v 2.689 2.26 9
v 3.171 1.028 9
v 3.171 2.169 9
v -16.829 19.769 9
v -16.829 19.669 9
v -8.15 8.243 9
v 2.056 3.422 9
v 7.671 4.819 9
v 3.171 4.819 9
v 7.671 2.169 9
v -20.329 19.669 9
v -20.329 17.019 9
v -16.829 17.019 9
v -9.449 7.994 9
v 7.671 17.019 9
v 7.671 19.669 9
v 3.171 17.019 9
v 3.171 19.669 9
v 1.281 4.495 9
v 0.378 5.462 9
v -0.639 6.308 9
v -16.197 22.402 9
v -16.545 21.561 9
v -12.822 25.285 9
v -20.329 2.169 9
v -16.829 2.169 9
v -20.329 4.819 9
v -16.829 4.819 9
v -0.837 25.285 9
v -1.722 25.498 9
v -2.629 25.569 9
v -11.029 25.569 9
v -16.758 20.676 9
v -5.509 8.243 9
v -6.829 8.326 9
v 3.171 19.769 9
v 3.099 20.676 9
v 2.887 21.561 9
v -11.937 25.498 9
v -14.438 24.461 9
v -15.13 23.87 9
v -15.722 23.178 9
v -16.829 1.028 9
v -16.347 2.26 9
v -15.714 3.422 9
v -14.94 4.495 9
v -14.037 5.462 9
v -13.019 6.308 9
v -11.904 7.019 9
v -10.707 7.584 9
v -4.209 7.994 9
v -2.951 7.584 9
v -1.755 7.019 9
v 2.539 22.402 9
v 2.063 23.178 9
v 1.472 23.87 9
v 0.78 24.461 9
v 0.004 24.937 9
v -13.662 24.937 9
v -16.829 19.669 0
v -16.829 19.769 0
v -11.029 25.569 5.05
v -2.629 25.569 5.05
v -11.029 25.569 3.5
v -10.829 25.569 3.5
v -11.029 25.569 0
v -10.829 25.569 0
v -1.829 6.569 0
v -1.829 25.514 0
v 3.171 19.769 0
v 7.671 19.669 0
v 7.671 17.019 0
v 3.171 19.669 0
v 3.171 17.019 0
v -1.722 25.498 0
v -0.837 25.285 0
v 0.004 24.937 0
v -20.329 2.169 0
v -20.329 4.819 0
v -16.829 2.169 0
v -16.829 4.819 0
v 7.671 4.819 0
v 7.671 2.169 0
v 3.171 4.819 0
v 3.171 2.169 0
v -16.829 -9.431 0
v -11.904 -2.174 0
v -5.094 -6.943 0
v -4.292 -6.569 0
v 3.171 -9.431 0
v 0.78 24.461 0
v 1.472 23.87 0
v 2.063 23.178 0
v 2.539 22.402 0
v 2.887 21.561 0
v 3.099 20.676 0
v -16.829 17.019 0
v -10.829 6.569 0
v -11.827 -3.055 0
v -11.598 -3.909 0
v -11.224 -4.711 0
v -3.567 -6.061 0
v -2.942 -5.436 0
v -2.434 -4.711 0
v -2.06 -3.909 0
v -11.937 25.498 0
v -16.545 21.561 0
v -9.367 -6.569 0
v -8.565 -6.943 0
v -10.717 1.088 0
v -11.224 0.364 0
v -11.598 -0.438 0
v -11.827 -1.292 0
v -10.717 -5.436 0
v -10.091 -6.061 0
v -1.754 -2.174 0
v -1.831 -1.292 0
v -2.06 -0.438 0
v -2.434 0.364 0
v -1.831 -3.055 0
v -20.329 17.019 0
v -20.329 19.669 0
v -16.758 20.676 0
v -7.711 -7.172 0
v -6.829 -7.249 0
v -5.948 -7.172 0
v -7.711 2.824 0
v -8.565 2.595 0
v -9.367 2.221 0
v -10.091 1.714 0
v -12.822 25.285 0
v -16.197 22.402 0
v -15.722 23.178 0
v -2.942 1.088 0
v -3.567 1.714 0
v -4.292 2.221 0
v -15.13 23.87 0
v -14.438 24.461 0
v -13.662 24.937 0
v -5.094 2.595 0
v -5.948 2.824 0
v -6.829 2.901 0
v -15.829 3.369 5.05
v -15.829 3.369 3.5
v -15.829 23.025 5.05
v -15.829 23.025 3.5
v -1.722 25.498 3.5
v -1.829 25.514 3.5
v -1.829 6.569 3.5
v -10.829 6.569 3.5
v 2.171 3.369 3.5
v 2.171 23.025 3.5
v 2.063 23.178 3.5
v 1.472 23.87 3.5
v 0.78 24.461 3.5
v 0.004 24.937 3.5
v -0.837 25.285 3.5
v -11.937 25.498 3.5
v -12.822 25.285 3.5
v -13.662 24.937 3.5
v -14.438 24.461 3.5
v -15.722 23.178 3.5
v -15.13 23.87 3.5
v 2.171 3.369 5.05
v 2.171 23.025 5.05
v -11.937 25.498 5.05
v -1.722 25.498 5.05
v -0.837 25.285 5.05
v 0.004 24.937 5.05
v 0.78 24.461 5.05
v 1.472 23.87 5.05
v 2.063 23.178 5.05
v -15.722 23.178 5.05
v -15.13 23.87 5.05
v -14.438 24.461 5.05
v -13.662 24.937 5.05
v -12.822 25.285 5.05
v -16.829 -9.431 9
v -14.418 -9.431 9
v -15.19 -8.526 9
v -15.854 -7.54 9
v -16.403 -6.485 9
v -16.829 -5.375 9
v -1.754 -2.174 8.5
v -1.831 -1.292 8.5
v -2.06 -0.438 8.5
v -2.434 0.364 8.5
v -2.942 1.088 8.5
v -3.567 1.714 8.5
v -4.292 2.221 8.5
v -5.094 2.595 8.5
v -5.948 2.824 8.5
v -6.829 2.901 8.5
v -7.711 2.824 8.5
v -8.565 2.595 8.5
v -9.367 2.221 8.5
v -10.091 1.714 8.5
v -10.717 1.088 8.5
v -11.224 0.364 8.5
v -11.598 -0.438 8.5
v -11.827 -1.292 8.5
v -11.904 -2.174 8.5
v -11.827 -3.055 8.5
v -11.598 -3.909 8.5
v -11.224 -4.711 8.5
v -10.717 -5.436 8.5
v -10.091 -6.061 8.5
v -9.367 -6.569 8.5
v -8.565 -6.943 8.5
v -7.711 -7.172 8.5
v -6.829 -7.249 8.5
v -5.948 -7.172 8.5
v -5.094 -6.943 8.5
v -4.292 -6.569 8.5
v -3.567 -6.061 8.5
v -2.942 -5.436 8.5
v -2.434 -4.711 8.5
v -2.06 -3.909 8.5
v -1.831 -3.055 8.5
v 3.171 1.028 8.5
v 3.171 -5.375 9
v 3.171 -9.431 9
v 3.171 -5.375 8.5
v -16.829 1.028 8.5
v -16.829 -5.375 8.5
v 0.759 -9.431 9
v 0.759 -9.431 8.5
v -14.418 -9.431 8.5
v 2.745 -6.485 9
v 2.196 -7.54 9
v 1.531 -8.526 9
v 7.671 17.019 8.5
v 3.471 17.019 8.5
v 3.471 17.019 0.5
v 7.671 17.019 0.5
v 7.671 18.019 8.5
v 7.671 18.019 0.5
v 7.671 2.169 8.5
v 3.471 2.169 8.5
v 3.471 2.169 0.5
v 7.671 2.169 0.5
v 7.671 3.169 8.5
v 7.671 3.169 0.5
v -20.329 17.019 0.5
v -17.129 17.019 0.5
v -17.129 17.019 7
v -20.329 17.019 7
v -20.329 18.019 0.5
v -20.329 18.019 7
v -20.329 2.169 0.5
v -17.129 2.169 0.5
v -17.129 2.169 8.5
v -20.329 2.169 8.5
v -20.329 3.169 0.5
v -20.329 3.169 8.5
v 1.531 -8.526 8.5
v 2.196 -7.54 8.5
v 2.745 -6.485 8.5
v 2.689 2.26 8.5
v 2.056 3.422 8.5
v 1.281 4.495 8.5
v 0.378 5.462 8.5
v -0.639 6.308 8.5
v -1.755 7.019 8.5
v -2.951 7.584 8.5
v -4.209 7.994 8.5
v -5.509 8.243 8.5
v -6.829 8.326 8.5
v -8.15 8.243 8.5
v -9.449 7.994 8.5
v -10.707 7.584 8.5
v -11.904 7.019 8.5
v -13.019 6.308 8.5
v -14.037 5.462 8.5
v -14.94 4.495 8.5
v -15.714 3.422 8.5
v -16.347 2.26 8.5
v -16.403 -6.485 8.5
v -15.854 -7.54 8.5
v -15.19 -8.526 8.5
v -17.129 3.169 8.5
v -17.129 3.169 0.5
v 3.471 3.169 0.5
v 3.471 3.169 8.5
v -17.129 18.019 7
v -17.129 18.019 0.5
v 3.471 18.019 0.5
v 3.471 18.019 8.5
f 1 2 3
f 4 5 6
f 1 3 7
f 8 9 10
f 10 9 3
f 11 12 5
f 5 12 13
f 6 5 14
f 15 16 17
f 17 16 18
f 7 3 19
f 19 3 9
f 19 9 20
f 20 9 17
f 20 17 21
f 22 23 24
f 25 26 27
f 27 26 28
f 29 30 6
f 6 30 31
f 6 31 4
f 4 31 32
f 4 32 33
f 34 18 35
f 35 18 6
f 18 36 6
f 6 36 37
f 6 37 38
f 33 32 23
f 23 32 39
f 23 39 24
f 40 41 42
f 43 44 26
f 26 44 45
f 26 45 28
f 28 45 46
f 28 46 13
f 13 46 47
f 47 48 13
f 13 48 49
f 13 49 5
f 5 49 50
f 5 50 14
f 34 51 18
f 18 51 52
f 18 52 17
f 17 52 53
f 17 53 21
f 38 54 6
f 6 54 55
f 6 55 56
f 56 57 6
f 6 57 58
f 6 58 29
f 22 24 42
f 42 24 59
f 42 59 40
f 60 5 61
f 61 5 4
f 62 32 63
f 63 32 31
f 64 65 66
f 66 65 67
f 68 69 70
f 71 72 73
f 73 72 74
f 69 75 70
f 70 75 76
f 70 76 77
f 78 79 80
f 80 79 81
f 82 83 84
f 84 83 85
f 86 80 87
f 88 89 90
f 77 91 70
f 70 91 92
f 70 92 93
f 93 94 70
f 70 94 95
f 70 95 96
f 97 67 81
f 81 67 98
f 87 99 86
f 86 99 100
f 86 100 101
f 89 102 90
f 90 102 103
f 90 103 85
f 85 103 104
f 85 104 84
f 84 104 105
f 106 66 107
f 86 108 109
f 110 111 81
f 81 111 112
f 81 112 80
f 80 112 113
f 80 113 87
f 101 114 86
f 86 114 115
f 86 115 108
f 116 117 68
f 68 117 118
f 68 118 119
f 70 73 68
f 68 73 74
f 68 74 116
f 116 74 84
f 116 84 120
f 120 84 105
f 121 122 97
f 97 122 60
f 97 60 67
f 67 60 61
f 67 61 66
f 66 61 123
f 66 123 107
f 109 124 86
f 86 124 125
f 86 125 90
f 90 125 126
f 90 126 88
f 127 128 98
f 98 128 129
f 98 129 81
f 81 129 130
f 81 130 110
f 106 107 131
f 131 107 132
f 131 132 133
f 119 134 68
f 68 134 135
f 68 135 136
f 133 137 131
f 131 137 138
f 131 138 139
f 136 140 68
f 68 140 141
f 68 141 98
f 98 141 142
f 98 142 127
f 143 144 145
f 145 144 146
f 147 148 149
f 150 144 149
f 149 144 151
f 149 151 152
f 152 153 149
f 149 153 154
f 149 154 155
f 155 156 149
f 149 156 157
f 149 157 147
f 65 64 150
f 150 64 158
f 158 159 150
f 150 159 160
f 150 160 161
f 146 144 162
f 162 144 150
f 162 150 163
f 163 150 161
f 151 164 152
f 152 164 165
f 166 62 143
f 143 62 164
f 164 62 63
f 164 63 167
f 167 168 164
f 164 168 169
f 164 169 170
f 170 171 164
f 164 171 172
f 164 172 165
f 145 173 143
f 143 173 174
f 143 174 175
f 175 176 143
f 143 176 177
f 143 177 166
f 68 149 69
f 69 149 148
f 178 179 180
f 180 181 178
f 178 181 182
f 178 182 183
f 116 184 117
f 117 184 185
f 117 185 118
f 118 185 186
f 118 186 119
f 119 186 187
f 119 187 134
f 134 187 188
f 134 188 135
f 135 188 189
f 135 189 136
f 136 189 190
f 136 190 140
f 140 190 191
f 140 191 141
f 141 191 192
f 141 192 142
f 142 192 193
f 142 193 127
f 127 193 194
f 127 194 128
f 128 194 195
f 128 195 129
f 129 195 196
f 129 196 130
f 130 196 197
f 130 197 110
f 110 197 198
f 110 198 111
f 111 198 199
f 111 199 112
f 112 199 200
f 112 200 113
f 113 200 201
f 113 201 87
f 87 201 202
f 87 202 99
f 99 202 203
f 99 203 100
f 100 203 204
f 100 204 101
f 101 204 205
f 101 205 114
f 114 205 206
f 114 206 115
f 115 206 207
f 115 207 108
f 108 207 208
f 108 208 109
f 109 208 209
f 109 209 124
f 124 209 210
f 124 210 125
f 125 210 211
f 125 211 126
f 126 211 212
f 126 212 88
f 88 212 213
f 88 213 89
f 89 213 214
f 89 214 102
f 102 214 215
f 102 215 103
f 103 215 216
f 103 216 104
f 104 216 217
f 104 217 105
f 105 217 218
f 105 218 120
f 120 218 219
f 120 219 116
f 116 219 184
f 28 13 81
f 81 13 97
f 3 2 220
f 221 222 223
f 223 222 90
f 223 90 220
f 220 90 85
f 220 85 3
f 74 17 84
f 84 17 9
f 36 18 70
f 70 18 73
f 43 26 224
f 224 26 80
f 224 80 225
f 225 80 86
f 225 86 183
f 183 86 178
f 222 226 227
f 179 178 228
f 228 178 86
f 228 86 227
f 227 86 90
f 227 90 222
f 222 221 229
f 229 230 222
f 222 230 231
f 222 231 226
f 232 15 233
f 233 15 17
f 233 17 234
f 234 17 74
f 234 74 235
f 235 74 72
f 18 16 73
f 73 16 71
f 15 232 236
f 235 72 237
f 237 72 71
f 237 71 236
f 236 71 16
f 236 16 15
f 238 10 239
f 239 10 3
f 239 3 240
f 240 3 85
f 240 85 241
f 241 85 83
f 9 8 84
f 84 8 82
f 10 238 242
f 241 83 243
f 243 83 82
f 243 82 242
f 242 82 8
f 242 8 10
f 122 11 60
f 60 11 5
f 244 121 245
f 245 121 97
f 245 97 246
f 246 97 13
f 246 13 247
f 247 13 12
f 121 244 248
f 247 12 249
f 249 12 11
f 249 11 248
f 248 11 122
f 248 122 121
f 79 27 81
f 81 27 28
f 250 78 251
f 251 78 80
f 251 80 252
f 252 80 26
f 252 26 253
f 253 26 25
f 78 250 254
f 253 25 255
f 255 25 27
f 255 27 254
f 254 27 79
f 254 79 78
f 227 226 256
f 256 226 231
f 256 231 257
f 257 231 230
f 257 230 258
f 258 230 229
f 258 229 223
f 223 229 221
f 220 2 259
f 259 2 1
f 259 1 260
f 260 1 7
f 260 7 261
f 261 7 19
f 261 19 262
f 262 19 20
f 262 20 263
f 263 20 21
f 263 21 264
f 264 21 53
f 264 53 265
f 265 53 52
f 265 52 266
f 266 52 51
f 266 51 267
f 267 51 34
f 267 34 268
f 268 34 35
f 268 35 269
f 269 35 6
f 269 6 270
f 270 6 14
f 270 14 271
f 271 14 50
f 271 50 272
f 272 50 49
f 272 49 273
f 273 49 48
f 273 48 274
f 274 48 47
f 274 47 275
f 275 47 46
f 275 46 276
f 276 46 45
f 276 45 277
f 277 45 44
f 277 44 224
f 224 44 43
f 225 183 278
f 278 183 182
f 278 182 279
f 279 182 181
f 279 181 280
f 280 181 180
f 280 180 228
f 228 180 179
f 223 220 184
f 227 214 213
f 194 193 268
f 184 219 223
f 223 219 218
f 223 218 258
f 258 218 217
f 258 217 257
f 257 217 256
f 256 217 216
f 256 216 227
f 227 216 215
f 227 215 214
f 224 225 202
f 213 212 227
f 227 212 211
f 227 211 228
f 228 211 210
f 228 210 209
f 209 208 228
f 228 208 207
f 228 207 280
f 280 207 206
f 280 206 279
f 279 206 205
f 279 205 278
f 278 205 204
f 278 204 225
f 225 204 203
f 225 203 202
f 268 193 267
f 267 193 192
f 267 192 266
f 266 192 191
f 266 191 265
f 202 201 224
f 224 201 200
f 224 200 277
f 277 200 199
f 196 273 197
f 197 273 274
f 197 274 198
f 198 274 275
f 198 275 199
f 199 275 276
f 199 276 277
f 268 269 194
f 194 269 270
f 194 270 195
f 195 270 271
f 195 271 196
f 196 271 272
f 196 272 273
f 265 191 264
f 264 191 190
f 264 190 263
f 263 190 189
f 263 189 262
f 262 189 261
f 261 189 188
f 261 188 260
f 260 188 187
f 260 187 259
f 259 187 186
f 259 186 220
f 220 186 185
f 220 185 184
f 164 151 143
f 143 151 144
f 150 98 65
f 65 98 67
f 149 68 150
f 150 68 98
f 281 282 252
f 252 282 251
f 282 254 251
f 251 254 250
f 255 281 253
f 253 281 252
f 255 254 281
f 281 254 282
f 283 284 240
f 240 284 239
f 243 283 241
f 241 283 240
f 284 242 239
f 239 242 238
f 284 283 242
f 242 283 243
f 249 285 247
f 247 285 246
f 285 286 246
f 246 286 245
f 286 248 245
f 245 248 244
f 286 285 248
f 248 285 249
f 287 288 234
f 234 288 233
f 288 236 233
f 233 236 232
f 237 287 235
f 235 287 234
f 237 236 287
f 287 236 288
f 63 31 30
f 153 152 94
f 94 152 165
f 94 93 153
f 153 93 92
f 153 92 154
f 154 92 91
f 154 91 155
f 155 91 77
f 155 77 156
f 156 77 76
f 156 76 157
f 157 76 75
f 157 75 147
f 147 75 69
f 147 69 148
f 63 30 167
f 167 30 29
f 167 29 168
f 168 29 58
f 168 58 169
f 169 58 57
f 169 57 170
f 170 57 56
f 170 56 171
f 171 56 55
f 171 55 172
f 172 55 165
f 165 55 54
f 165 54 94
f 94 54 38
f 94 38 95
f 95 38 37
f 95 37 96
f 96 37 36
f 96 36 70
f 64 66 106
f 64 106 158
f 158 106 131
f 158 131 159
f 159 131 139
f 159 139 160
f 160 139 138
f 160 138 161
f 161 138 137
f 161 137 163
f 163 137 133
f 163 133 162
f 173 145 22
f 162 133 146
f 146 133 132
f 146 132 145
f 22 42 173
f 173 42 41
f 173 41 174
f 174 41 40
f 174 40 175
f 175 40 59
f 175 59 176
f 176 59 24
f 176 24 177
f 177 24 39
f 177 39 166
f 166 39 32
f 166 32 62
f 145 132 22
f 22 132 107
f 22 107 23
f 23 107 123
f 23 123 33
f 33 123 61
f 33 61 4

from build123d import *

# Parameters (mm, degrees)
SKETCH2_W           = 20
SKETCH2_H           = 35
BOSS_EXTRUDE1_DEPTH = 9
SKETCH3_W           = 9
SKETCH3_H           = 2.65
BOSS_EXTRUDE2_DEPTH = 14
SKETCH3_2_W         = 9
SKETCH3_2_H         = 2.65
BOSS_EXTRUDE3_DEPTH = 14
SKETCH4_R           = 5.075
CUT_EXTRUDE1_DEPTH  = 34.88300924
SKETCH5_R           = 10.5
CUT_EXTRUDE2_DEPTH  = 0.5
SKETCH7_W           = 18
SKETCH7_H           = 1.55
CUT_EXTRUDE3_DEPTH  = 22.2
SKETCH8_W           = 9
SKETCH8_H           = 3.5
CUT_EXTRUDE4_DEPTH  = 19
SKETCH9_W           = 3.2
SKETCH9_H           = 8
SKETCH9_W_2         = 4.2
CUT_EXTRUDE5_DEPTH  = 1
SKETCH10_W          = 3.2
SKETCH10_H          = 6.5
SKETCH10_W_2        = 4.2
SKETCH10_H_2        = 8
CUT_EXTRUDE6_DEPTH  = 1
CUT_EXTRUDE7_DEPTH  = 10


with BuildPart() as part:
    # Sketch2 → Boss-Extrude1 (new body)
    with BuildSketch(Plane.XY):
        with Locations((-6.829268293, 8.069105691)):
            Rectangle(SKETCH2_W, SKETCH2_H)
    extrude(amount=BOSS_EXTRUDE1_DEPTH)

    # Sketch3 → Boss-Extrude2 (add)
    with BuildSketch(Plane(origin=(-6.329268293, 0, 0), x_dir=(0, 0, -1), z_dir=(1, 0, 0))):
        with Locations((-4.5, 18.344105691)):
            Rectangle(SKETCH3_W, SKETCH3_H)
        with Locations((-4.5, 3.494105691)):
            Rectangle(SKETCH3_W, SKETCH3_H)
    extrude(amount=BOSS_EXTRUDE2_DEPTH)

    # Sketch3<2> → Boss-Extrude3 (add)
    with BuildSketch(Plane(origin=(-6.329268293, 0, 0), x_dir=(0, 0, -1), z_dir=(1, 0, 0))):
        with Locations((-4.5, 18.344105691)):
            Rectangle(SKETCH3_2_W, SKETCH3_2_H)
        with Locations((-4.5, 3.494105691)):
            Rectangle(SKETCH3_2_W, SKETCH3_2_H)
    extrude(amount=-BOSS_EXTRUDE3_DEPTH)

    # Sketch4 → Cut-Extrude1 (cut, through all)
    with BuildSketch(Plane.XY.offset(9)):
        with Locations((-6.829268293, -2.173702028)):
            Circle(SKETCH4_R)
    extrude(amount=-CUT_EXTRUDE1_DEPTH, mode=Mode.SUBTRACT)

    # Sketch5 → Cut-Extrude2 (cut)
    with BuildSketch(Plane.XY.offset(9)):
        with Locations((-6.829268293, -2.173702028)):
            Circle(SKETCH5_R)
    extrude(amount=-CUT_EXTRUDE2_DEPTH, mode=Mode.SUBTRACT)

    # Sketch7 → Cut-Extrude3 (cut)
    with BuildSketch(Plane(origin=(0, 25.569105691, 0), x_dir=(1, 0, 0), z_dir=(0, 1, 0))):
        with Locations((-6.829268293, -4.275)):
            Rectangle(SKETCH7_W, SKETCH7_H)
    extrude(amount=-CUT_EXTRUDE3_DEPTH, mode=Mode.SUBTRACT)

    # Sketch8 → Cut-Extrude4 (cut)
    with BuildSketch(Plane(origin=(0, 25.569105691, 0), x_dir=(1, 0, 0), z_dir=(0, 1, 0))):
        with Locations((-6.329268293, -1.75)):
            Rectangle(SKETCH8_W, SKETCH8_H)
    extrude(amount=-CUT_EXTRUDE4_DEPTH, mode=Mode.SUBTRACT)

    # Sketch9 → Cut-Extrude5 (cut)
    with BuildSketch(Plane.XZ.offset(-2.169105691)):
        with Locations((-18.729268293, 4.5)):
            Rectangle(SKETCH9_W, SKETCH9_H)
        with Locations((5.570731707, 4.5)):
            Rectangle(SKETCH9_W_2, SKETCH9_H)
    extrude(amount=-CUT_EXTRUDE5_DEPTH, mode=Mode.SUBTRACT)

    # Sketch10 → Cut-Extrude6 (cut)
    with BuildSketch(Plane.XZ.offset(-17.019105691)):
        with Locations((-18.729268293, 3.75)):
            Rectangle(SKETCH10_W, SKETCH10_H)
        with Locations((5.570731707, 4.5)):
            Rectangle(SKETCH10_W_2, SKETCH10_H_2)
    extrude(amount=-CUT_EXTRUDE6_DEPTH, mode=Mode.SUBTRACT)

    # Sketch13 → Cut-Extrude7 (cut)
    with BuildSketch(Plane.XY.offset(9)):
        with BuildLine():
            Line((3.170731707, 25.569105691), (-2.629268293, 25.569105691))
            ThreePointArc((-2.629268293, 25.569105691), (1.471951038, 23.870325022), (3.170731707, 19.769105691))
            Line((3.170731707, 19.769105691), (3.170731707, 25.569105691))
        make_face()
        with BuildLine():
            ThreePointArc((-16.829268293, 19.769105691), (-15.130487624, 23.870325022), (-11.029268293, 25.569105691))
            Line((-11.029268293, 25.569105691), (-16.829268293, 25.569105691))
            Line((-16.829268293, 25.569105691), (-16.829268293, 19.769105691))
        make_face()
    extrude(amount=-CUT_EXTRUDE7_DEPTH, mode=Mode.SUBTRACT)


solid = part.part
